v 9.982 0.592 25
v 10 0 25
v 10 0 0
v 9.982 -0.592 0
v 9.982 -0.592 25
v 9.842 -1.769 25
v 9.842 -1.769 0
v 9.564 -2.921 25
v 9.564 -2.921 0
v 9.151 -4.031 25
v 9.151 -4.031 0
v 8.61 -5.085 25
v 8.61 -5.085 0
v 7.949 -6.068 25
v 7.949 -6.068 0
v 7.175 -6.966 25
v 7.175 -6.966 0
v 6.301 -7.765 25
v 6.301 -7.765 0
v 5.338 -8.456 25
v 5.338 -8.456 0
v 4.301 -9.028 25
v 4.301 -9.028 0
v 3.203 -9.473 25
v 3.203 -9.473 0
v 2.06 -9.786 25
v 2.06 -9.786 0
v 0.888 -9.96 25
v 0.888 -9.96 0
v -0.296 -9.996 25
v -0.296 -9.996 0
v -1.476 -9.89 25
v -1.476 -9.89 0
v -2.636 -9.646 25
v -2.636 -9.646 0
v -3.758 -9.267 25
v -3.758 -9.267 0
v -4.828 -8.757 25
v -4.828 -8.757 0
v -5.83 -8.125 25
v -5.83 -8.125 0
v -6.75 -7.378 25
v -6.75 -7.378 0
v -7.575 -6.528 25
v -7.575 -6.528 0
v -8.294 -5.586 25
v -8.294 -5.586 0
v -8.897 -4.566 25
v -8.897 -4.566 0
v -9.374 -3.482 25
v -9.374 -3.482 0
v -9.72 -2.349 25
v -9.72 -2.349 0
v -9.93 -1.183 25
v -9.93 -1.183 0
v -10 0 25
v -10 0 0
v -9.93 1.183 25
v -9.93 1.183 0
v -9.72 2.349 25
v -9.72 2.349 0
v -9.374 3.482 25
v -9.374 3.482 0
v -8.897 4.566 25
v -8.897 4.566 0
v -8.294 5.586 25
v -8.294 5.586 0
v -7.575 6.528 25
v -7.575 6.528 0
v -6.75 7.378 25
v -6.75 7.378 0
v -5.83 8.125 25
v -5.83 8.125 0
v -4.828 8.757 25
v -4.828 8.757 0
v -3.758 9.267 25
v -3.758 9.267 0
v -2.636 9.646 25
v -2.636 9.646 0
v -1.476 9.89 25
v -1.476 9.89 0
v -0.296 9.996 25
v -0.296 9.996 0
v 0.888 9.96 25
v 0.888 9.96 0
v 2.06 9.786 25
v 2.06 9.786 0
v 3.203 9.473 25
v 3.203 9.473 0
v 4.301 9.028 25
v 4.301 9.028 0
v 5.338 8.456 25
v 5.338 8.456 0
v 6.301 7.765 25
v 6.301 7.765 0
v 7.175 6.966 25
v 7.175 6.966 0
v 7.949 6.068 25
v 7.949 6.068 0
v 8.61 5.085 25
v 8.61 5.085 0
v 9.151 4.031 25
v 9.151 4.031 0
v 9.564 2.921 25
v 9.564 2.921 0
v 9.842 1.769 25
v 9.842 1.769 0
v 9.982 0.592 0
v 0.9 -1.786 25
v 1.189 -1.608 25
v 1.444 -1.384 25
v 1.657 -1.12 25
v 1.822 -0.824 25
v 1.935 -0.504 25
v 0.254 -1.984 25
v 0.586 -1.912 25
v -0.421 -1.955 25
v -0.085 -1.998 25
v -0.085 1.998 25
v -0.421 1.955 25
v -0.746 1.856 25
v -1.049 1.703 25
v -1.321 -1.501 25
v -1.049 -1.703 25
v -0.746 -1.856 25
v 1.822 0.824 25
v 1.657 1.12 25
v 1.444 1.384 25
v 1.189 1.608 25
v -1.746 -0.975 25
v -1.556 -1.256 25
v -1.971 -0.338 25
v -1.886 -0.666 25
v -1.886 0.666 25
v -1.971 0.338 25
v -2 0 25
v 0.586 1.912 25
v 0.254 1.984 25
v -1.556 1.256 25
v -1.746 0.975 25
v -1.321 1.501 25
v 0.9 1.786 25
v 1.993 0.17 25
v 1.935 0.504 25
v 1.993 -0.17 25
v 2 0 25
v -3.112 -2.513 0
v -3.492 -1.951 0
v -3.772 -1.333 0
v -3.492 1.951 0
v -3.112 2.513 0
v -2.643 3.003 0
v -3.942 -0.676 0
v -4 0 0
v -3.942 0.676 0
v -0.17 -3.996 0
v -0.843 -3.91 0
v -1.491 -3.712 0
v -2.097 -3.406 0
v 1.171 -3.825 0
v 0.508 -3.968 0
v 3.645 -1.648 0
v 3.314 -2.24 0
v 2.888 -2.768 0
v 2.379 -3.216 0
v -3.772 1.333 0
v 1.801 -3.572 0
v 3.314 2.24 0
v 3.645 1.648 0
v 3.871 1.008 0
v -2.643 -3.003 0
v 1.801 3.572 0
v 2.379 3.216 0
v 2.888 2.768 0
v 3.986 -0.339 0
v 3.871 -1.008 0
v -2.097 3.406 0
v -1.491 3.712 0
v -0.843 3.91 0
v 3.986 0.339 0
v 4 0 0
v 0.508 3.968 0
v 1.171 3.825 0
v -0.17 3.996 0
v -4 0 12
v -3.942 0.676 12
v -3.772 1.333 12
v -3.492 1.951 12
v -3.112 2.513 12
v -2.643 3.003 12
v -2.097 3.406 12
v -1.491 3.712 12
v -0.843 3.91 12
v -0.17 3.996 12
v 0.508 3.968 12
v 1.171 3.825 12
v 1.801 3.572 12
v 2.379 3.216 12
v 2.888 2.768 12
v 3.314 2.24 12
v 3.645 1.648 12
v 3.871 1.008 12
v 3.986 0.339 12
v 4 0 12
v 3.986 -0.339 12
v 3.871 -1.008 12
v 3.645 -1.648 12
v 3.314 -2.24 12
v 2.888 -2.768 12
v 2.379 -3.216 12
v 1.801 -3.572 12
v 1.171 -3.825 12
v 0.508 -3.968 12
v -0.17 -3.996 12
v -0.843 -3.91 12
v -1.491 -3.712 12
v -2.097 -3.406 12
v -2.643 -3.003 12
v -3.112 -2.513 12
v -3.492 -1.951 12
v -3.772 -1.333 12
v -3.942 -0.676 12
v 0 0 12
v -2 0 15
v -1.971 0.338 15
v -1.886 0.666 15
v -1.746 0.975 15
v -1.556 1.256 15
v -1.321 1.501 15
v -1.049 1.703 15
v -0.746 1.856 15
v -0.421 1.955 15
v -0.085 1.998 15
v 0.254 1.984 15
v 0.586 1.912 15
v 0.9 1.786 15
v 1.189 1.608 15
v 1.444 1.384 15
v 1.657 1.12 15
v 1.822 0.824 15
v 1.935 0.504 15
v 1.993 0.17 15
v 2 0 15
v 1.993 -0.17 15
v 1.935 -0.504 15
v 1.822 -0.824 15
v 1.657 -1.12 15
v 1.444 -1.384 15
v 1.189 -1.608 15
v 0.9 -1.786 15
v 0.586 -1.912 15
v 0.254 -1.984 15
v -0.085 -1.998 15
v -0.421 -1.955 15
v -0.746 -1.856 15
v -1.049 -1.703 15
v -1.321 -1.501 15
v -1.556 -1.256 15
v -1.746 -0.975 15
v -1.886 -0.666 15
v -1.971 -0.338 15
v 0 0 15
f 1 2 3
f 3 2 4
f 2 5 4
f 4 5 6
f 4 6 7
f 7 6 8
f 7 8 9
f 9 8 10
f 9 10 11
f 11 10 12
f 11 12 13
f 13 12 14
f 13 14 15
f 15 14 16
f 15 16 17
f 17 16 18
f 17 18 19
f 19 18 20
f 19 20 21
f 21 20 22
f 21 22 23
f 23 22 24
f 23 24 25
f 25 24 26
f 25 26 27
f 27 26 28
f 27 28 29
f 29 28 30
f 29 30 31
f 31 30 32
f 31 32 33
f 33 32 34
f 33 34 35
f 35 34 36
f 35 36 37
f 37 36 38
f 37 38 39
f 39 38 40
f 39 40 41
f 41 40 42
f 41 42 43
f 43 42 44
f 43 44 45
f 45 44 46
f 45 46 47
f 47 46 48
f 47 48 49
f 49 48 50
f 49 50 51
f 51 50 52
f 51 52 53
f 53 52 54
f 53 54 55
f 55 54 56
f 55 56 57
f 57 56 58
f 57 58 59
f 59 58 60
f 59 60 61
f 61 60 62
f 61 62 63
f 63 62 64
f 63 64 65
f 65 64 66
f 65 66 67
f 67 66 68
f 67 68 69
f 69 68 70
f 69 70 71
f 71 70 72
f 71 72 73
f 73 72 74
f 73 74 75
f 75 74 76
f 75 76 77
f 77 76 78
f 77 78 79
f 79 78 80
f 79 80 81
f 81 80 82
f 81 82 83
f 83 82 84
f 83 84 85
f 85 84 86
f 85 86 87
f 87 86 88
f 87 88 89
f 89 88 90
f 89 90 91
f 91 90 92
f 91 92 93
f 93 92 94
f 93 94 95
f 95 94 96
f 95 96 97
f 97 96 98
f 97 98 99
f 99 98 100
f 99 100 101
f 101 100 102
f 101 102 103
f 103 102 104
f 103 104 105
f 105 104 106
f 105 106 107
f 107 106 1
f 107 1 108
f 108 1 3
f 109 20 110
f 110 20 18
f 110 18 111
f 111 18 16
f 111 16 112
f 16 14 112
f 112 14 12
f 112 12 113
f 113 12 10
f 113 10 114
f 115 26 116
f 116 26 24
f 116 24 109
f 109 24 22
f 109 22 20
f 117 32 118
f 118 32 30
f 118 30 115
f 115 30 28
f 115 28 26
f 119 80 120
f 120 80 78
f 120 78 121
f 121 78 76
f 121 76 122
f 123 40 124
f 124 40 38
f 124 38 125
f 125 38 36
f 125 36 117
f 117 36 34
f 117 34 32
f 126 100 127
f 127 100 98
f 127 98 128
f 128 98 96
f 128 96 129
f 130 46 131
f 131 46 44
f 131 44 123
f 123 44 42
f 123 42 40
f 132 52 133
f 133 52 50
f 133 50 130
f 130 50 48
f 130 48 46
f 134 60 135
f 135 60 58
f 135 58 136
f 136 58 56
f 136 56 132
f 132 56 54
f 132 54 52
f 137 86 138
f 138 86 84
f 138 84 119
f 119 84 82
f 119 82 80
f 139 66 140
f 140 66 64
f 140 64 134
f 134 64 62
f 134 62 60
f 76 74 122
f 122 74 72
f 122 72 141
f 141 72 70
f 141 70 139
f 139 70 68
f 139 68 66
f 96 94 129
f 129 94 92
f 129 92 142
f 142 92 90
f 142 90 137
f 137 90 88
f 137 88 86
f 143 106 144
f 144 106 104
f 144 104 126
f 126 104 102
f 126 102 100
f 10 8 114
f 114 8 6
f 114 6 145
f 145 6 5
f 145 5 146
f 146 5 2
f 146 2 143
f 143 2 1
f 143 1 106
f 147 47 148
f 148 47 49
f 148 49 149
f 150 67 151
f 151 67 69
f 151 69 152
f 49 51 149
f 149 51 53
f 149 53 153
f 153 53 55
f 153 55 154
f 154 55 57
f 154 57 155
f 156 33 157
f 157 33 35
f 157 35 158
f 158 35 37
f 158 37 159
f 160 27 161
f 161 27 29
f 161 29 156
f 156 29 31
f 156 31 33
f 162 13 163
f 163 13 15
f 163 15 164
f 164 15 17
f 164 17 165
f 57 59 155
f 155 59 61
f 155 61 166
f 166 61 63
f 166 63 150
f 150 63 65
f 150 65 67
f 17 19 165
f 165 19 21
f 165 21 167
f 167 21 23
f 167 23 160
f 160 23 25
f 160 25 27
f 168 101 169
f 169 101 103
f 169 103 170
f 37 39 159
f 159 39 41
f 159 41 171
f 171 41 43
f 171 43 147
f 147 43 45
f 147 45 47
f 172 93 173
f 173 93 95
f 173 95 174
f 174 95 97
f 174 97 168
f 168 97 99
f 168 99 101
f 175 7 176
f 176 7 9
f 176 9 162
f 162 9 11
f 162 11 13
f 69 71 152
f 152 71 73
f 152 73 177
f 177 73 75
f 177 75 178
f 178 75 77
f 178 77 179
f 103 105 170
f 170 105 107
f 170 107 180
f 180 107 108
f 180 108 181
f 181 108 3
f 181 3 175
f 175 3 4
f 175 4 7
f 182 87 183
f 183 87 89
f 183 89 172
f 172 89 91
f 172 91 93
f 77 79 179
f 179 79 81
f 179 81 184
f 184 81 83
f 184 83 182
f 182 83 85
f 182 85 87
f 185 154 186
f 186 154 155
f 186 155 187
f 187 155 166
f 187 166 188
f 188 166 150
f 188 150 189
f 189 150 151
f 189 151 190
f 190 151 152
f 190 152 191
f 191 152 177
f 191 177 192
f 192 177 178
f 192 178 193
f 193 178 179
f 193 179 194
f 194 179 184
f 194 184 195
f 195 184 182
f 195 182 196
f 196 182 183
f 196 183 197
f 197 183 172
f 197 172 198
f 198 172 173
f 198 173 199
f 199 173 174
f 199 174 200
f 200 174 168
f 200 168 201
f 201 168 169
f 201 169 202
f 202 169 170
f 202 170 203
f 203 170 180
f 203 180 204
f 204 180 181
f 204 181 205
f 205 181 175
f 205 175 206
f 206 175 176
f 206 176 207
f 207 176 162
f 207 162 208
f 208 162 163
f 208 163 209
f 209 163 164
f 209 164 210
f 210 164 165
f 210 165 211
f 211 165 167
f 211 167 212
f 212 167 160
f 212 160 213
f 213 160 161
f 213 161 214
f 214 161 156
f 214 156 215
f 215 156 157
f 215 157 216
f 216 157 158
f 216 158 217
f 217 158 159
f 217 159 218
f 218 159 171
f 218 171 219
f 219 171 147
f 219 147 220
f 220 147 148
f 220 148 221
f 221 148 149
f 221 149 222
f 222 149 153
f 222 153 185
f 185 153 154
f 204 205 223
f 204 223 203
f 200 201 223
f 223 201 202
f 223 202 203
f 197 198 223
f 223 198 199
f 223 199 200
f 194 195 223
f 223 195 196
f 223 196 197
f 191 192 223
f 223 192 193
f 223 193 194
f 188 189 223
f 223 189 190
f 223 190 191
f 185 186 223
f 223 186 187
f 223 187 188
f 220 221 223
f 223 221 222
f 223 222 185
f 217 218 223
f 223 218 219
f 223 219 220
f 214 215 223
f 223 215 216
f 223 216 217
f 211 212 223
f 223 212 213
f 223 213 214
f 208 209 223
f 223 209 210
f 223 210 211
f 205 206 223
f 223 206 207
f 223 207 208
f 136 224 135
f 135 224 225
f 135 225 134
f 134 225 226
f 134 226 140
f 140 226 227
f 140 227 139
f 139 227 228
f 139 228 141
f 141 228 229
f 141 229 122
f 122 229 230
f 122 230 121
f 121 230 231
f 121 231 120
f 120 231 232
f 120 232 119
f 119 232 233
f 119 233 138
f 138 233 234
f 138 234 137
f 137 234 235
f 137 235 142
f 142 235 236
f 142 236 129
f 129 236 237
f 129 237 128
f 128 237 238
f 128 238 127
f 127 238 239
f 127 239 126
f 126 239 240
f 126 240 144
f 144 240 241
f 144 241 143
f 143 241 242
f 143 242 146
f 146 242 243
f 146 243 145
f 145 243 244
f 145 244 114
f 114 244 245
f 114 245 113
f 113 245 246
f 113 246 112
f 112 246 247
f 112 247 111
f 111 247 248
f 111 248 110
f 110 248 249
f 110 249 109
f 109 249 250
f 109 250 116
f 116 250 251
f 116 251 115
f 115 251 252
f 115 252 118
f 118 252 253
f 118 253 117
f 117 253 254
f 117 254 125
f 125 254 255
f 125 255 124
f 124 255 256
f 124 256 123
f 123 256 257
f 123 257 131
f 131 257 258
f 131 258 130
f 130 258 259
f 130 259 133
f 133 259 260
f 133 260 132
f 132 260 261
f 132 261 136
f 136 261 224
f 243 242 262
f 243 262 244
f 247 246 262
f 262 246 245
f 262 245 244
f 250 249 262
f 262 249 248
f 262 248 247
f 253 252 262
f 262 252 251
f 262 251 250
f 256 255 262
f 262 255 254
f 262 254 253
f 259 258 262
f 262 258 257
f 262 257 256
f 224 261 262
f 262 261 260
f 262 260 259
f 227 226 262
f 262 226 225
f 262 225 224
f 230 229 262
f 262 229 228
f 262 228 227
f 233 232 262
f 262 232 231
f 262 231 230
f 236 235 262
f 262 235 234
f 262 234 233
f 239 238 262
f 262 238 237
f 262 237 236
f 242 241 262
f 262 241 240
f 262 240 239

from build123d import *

# Parameters (mm, degrees)
SKETCH1_R       = 10
BODY_DEPTH      = 25
SKETCH2_R       = 4
BORE_LOW_DEPTH  = 12
SKETCH3_R       = 2
BORE_HIGH_DEPTH = 10


with BuildPart() as part:
    # Sketch1 → Body (new body)
    with BuildSketch(Plane.XY):
        Circle(SKETCH1_R)
    extrude(amount=BODY_DEPTH)

    # Sketch2 → Bore_low (cut)
    with BuildSketch(Plane.XY):
        Circle(SKETCH2_R)
    extrude(amount=BORE_LOW_DEPTH, mode=Mode.SUBTRACT)

    # Sketch3 → Bore_high (cut)
    with BuildSketch(Plane.XY.offset(15)):
        Circle(SKETCH3_R)
    extrude(amount=BORE_HIGH_DEPTH, mode=Mode.SUBTRACT)


solid = part.part
